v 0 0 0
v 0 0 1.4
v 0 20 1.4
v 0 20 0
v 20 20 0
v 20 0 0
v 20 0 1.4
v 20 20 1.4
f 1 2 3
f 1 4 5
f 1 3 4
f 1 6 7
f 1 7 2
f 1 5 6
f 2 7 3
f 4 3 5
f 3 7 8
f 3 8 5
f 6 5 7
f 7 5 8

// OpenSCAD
/* Warning, this is a very basic generator with a lot of approximation 
input data : [LQFP, 2JX, 20x20x1.4mm, 176, , A, C04-00367A]
generated by com.zoubworld.electronics.cad.model3d.Basic
Date : Sun Feb 15 10:50:48 CET 2026
*/

//body
color("black")
translate([0,0,0])
cube([20.0,20.0,1.4], center=false);
